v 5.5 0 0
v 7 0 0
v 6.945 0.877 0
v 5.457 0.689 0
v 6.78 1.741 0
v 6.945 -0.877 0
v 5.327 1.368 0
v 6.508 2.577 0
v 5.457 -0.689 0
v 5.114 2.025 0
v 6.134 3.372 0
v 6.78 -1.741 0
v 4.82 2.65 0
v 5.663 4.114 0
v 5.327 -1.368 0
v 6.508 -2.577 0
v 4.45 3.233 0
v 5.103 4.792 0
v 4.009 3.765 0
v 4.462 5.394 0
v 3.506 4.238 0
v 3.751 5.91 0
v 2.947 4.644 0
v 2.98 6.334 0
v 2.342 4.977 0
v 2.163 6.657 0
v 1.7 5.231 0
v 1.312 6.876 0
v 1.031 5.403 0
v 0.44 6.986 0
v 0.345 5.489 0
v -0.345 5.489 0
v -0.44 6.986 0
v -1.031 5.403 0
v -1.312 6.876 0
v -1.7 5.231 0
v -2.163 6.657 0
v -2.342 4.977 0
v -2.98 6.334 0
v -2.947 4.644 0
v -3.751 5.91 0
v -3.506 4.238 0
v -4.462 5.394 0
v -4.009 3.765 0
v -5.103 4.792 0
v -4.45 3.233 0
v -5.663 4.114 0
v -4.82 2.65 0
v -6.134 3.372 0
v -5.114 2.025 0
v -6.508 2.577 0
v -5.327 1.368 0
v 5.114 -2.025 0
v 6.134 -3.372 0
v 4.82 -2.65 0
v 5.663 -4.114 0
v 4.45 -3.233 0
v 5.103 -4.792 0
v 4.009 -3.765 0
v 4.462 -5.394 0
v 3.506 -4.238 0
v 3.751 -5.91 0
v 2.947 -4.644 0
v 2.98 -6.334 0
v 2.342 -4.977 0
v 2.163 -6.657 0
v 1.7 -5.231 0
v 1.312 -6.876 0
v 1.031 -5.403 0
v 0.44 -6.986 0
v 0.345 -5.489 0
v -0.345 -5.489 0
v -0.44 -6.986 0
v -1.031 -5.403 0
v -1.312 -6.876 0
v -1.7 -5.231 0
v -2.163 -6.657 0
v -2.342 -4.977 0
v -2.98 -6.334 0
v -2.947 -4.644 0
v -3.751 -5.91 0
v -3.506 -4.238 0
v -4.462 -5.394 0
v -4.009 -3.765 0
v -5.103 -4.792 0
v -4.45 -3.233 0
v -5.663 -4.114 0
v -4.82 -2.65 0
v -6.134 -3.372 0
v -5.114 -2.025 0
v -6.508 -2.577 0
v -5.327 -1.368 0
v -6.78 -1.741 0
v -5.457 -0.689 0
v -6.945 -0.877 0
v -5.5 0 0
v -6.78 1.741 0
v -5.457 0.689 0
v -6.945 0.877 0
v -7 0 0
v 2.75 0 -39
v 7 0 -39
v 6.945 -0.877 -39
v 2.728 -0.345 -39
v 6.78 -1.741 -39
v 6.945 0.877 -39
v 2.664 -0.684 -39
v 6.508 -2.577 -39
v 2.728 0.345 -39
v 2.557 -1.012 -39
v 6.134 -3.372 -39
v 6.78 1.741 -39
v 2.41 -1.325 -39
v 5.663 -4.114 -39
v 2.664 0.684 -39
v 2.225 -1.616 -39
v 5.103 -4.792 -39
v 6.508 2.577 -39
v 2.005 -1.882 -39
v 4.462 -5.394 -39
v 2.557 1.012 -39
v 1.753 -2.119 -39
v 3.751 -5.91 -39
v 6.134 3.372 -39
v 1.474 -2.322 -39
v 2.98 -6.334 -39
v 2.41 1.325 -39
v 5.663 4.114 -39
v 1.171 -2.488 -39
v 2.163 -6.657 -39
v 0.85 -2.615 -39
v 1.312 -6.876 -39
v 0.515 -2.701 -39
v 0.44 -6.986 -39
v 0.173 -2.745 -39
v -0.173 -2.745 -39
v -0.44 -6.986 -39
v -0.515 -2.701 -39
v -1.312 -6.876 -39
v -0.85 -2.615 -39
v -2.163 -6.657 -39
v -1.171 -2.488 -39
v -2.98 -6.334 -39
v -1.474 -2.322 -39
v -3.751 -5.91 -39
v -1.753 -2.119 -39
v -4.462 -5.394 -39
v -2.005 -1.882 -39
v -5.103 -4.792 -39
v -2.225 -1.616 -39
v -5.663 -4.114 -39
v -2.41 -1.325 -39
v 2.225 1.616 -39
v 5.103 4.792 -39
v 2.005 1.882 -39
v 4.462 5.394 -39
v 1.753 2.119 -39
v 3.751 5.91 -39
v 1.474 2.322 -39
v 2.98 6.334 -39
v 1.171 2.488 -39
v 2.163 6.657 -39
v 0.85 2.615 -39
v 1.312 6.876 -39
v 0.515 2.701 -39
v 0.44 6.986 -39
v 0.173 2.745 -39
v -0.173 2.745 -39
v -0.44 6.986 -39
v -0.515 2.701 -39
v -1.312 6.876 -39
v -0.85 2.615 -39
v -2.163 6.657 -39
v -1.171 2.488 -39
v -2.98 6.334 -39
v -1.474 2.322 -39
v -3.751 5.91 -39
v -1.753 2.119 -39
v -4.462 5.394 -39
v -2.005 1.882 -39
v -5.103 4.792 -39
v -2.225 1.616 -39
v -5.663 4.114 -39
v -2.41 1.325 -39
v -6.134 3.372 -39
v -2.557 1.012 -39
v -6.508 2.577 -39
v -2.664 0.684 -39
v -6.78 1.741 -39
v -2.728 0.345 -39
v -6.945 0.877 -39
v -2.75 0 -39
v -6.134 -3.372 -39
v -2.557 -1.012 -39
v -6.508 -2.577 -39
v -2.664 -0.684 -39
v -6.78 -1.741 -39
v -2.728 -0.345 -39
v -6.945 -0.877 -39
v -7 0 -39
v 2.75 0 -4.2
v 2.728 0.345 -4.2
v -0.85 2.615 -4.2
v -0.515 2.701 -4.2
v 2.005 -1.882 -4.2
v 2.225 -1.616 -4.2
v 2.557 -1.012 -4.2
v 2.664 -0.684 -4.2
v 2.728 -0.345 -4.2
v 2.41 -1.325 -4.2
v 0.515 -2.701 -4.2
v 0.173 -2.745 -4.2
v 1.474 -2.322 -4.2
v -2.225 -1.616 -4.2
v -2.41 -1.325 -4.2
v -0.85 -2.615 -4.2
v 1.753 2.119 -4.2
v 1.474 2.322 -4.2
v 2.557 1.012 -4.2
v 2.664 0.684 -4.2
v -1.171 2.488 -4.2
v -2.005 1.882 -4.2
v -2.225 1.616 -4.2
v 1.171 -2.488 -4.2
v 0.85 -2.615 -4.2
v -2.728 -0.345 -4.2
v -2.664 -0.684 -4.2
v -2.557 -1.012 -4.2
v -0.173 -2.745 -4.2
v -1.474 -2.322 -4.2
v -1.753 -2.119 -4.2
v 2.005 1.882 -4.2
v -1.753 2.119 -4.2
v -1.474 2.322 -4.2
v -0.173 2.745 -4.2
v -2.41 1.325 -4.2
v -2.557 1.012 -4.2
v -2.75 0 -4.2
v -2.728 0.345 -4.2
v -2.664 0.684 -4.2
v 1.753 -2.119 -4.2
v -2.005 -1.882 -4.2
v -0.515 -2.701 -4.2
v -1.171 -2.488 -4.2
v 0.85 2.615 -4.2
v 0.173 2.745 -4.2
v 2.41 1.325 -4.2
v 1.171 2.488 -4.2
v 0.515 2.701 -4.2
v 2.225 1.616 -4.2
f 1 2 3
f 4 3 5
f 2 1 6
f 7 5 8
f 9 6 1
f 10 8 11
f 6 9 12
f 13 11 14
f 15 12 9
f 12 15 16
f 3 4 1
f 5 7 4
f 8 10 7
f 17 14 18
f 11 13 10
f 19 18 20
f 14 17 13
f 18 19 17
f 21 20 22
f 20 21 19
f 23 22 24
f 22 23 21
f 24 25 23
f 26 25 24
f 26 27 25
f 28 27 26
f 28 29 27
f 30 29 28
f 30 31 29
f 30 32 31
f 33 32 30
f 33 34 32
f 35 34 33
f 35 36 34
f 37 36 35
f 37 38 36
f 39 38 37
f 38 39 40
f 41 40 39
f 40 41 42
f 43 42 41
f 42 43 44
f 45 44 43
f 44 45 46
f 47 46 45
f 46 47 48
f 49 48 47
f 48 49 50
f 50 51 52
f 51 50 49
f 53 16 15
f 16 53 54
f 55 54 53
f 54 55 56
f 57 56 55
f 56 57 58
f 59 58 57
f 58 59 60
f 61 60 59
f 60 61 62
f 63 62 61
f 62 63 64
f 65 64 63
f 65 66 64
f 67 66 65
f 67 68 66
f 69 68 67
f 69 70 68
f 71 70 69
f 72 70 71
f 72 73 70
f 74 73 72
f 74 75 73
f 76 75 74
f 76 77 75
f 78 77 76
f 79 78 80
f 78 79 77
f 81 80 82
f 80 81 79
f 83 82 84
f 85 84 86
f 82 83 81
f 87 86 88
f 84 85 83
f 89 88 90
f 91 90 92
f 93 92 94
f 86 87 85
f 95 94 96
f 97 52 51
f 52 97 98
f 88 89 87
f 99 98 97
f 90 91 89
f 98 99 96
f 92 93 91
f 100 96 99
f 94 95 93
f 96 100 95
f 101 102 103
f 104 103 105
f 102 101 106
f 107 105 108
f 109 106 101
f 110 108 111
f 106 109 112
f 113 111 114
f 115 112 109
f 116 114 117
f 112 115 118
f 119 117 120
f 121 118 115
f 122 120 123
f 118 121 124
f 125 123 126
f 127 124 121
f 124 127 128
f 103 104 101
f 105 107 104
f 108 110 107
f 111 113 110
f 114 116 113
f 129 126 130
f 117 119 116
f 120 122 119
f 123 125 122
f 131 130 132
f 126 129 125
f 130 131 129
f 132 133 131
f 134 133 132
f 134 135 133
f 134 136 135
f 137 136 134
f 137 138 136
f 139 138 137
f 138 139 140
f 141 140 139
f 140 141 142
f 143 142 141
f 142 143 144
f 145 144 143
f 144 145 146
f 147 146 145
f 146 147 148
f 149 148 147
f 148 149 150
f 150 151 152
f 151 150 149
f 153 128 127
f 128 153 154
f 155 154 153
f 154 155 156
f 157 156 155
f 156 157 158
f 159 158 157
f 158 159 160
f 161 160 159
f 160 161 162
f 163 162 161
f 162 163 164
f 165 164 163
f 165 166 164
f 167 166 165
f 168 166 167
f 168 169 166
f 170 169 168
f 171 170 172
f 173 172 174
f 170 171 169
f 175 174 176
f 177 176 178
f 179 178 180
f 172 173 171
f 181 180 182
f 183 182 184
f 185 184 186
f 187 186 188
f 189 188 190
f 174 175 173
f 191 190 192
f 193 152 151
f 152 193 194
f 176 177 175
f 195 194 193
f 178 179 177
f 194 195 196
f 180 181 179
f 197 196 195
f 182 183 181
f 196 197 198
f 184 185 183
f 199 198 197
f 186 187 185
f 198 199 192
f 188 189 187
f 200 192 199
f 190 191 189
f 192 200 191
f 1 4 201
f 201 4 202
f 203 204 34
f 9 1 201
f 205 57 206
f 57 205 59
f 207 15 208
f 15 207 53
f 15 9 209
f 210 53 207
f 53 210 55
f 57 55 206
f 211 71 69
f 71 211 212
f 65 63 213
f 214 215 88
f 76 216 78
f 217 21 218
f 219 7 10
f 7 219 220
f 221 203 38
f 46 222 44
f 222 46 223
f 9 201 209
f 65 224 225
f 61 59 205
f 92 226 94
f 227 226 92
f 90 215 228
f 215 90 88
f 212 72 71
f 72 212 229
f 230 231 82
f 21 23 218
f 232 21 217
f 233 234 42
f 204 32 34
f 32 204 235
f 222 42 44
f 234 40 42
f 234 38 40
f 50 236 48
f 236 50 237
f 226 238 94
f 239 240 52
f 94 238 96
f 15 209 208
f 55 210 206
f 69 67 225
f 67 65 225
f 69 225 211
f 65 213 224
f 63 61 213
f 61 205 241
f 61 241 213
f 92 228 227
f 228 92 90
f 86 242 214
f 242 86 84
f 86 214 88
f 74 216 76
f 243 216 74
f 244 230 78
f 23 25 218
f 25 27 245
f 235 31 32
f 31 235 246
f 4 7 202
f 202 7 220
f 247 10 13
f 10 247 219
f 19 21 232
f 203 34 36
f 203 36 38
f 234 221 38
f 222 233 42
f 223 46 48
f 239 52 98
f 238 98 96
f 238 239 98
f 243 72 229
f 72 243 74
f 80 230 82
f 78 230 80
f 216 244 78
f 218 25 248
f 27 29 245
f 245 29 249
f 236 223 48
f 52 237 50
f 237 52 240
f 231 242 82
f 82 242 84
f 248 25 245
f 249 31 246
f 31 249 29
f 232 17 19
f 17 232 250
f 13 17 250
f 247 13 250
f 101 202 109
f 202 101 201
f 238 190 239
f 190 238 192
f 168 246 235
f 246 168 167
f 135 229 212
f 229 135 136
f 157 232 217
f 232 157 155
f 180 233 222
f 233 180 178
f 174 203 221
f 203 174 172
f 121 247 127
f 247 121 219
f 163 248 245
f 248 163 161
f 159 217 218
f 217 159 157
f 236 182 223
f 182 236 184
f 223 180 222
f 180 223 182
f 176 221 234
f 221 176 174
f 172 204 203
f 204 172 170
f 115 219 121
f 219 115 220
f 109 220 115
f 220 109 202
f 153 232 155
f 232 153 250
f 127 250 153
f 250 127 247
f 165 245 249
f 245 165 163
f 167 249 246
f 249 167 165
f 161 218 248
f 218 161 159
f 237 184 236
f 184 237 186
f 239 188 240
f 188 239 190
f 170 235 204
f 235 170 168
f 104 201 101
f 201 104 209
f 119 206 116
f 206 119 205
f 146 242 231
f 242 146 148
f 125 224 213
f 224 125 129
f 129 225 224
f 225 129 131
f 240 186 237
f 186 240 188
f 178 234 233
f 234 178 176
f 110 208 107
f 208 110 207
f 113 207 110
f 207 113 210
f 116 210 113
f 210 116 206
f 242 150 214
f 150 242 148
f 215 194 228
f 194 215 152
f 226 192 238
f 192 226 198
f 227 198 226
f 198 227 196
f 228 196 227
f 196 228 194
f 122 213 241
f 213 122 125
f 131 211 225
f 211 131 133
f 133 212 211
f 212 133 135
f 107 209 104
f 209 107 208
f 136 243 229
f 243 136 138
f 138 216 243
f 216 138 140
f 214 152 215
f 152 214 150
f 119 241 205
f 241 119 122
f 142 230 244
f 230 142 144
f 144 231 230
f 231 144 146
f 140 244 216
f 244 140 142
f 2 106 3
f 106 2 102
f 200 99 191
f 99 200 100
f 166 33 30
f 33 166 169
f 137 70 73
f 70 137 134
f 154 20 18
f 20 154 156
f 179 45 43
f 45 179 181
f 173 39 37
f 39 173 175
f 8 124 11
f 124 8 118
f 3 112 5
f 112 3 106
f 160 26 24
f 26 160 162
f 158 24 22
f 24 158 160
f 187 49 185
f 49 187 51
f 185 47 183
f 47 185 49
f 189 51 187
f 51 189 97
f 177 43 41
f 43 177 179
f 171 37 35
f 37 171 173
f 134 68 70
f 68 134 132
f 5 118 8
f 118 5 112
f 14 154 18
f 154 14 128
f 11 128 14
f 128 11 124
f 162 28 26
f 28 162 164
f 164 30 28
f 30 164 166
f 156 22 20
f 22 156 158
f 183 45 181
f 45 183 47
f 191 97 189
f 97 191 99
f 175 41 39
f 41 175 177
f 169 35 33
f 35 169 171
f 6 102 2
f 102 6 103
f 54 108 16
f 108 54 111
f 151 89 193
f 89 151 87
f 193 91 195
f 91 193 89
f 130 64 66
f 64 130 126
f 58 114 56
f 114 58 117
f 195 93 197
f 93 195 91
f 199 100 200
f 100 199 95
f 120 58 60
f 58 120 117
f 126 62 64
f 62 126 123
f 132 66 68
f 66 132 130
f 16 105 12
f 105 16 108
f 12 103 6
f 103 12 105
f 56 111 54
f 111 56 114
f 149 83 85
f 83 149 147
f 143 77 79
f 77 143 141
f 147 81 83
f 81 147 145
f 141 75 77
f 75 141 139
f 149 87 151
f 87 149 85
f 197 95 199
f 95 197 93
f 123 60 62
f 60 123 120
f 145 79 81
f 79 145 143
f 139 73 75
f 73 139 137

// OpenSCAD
$fn = 50;


difference() {
	union() {
		translate(v = [0, 0, -39.0000000000]) {
			cylinder(h = 39, r = 7.0000000000);
		}
	}
	union() {
		translate(v = [0, 0, 0]) {
			rotate(a = [0, 0, 0]) {
				difference() {
					union() {
						#translate(v = [0, 0, -39.0000000000]) {
							cylinder(h = 39, r = 2.2500000000);
						}
						#translate(v = [0, 0, -4.2000000000]) {
							cylinder(h = 4.2000000000, r1 = 2.7500000000, r2 = 5.5000000000);
						}
						#translate(v = [0, 0, -39.0000000000]) {
							cylinder(h = 39, r = 2.7500000000);
						}
						#translate(v = [0, 0, -39.0000000000]) {
							cylinder(h = 39, r = 2.2500000000);
						}
					}
					union();
				}
			}
		}
	}
}
